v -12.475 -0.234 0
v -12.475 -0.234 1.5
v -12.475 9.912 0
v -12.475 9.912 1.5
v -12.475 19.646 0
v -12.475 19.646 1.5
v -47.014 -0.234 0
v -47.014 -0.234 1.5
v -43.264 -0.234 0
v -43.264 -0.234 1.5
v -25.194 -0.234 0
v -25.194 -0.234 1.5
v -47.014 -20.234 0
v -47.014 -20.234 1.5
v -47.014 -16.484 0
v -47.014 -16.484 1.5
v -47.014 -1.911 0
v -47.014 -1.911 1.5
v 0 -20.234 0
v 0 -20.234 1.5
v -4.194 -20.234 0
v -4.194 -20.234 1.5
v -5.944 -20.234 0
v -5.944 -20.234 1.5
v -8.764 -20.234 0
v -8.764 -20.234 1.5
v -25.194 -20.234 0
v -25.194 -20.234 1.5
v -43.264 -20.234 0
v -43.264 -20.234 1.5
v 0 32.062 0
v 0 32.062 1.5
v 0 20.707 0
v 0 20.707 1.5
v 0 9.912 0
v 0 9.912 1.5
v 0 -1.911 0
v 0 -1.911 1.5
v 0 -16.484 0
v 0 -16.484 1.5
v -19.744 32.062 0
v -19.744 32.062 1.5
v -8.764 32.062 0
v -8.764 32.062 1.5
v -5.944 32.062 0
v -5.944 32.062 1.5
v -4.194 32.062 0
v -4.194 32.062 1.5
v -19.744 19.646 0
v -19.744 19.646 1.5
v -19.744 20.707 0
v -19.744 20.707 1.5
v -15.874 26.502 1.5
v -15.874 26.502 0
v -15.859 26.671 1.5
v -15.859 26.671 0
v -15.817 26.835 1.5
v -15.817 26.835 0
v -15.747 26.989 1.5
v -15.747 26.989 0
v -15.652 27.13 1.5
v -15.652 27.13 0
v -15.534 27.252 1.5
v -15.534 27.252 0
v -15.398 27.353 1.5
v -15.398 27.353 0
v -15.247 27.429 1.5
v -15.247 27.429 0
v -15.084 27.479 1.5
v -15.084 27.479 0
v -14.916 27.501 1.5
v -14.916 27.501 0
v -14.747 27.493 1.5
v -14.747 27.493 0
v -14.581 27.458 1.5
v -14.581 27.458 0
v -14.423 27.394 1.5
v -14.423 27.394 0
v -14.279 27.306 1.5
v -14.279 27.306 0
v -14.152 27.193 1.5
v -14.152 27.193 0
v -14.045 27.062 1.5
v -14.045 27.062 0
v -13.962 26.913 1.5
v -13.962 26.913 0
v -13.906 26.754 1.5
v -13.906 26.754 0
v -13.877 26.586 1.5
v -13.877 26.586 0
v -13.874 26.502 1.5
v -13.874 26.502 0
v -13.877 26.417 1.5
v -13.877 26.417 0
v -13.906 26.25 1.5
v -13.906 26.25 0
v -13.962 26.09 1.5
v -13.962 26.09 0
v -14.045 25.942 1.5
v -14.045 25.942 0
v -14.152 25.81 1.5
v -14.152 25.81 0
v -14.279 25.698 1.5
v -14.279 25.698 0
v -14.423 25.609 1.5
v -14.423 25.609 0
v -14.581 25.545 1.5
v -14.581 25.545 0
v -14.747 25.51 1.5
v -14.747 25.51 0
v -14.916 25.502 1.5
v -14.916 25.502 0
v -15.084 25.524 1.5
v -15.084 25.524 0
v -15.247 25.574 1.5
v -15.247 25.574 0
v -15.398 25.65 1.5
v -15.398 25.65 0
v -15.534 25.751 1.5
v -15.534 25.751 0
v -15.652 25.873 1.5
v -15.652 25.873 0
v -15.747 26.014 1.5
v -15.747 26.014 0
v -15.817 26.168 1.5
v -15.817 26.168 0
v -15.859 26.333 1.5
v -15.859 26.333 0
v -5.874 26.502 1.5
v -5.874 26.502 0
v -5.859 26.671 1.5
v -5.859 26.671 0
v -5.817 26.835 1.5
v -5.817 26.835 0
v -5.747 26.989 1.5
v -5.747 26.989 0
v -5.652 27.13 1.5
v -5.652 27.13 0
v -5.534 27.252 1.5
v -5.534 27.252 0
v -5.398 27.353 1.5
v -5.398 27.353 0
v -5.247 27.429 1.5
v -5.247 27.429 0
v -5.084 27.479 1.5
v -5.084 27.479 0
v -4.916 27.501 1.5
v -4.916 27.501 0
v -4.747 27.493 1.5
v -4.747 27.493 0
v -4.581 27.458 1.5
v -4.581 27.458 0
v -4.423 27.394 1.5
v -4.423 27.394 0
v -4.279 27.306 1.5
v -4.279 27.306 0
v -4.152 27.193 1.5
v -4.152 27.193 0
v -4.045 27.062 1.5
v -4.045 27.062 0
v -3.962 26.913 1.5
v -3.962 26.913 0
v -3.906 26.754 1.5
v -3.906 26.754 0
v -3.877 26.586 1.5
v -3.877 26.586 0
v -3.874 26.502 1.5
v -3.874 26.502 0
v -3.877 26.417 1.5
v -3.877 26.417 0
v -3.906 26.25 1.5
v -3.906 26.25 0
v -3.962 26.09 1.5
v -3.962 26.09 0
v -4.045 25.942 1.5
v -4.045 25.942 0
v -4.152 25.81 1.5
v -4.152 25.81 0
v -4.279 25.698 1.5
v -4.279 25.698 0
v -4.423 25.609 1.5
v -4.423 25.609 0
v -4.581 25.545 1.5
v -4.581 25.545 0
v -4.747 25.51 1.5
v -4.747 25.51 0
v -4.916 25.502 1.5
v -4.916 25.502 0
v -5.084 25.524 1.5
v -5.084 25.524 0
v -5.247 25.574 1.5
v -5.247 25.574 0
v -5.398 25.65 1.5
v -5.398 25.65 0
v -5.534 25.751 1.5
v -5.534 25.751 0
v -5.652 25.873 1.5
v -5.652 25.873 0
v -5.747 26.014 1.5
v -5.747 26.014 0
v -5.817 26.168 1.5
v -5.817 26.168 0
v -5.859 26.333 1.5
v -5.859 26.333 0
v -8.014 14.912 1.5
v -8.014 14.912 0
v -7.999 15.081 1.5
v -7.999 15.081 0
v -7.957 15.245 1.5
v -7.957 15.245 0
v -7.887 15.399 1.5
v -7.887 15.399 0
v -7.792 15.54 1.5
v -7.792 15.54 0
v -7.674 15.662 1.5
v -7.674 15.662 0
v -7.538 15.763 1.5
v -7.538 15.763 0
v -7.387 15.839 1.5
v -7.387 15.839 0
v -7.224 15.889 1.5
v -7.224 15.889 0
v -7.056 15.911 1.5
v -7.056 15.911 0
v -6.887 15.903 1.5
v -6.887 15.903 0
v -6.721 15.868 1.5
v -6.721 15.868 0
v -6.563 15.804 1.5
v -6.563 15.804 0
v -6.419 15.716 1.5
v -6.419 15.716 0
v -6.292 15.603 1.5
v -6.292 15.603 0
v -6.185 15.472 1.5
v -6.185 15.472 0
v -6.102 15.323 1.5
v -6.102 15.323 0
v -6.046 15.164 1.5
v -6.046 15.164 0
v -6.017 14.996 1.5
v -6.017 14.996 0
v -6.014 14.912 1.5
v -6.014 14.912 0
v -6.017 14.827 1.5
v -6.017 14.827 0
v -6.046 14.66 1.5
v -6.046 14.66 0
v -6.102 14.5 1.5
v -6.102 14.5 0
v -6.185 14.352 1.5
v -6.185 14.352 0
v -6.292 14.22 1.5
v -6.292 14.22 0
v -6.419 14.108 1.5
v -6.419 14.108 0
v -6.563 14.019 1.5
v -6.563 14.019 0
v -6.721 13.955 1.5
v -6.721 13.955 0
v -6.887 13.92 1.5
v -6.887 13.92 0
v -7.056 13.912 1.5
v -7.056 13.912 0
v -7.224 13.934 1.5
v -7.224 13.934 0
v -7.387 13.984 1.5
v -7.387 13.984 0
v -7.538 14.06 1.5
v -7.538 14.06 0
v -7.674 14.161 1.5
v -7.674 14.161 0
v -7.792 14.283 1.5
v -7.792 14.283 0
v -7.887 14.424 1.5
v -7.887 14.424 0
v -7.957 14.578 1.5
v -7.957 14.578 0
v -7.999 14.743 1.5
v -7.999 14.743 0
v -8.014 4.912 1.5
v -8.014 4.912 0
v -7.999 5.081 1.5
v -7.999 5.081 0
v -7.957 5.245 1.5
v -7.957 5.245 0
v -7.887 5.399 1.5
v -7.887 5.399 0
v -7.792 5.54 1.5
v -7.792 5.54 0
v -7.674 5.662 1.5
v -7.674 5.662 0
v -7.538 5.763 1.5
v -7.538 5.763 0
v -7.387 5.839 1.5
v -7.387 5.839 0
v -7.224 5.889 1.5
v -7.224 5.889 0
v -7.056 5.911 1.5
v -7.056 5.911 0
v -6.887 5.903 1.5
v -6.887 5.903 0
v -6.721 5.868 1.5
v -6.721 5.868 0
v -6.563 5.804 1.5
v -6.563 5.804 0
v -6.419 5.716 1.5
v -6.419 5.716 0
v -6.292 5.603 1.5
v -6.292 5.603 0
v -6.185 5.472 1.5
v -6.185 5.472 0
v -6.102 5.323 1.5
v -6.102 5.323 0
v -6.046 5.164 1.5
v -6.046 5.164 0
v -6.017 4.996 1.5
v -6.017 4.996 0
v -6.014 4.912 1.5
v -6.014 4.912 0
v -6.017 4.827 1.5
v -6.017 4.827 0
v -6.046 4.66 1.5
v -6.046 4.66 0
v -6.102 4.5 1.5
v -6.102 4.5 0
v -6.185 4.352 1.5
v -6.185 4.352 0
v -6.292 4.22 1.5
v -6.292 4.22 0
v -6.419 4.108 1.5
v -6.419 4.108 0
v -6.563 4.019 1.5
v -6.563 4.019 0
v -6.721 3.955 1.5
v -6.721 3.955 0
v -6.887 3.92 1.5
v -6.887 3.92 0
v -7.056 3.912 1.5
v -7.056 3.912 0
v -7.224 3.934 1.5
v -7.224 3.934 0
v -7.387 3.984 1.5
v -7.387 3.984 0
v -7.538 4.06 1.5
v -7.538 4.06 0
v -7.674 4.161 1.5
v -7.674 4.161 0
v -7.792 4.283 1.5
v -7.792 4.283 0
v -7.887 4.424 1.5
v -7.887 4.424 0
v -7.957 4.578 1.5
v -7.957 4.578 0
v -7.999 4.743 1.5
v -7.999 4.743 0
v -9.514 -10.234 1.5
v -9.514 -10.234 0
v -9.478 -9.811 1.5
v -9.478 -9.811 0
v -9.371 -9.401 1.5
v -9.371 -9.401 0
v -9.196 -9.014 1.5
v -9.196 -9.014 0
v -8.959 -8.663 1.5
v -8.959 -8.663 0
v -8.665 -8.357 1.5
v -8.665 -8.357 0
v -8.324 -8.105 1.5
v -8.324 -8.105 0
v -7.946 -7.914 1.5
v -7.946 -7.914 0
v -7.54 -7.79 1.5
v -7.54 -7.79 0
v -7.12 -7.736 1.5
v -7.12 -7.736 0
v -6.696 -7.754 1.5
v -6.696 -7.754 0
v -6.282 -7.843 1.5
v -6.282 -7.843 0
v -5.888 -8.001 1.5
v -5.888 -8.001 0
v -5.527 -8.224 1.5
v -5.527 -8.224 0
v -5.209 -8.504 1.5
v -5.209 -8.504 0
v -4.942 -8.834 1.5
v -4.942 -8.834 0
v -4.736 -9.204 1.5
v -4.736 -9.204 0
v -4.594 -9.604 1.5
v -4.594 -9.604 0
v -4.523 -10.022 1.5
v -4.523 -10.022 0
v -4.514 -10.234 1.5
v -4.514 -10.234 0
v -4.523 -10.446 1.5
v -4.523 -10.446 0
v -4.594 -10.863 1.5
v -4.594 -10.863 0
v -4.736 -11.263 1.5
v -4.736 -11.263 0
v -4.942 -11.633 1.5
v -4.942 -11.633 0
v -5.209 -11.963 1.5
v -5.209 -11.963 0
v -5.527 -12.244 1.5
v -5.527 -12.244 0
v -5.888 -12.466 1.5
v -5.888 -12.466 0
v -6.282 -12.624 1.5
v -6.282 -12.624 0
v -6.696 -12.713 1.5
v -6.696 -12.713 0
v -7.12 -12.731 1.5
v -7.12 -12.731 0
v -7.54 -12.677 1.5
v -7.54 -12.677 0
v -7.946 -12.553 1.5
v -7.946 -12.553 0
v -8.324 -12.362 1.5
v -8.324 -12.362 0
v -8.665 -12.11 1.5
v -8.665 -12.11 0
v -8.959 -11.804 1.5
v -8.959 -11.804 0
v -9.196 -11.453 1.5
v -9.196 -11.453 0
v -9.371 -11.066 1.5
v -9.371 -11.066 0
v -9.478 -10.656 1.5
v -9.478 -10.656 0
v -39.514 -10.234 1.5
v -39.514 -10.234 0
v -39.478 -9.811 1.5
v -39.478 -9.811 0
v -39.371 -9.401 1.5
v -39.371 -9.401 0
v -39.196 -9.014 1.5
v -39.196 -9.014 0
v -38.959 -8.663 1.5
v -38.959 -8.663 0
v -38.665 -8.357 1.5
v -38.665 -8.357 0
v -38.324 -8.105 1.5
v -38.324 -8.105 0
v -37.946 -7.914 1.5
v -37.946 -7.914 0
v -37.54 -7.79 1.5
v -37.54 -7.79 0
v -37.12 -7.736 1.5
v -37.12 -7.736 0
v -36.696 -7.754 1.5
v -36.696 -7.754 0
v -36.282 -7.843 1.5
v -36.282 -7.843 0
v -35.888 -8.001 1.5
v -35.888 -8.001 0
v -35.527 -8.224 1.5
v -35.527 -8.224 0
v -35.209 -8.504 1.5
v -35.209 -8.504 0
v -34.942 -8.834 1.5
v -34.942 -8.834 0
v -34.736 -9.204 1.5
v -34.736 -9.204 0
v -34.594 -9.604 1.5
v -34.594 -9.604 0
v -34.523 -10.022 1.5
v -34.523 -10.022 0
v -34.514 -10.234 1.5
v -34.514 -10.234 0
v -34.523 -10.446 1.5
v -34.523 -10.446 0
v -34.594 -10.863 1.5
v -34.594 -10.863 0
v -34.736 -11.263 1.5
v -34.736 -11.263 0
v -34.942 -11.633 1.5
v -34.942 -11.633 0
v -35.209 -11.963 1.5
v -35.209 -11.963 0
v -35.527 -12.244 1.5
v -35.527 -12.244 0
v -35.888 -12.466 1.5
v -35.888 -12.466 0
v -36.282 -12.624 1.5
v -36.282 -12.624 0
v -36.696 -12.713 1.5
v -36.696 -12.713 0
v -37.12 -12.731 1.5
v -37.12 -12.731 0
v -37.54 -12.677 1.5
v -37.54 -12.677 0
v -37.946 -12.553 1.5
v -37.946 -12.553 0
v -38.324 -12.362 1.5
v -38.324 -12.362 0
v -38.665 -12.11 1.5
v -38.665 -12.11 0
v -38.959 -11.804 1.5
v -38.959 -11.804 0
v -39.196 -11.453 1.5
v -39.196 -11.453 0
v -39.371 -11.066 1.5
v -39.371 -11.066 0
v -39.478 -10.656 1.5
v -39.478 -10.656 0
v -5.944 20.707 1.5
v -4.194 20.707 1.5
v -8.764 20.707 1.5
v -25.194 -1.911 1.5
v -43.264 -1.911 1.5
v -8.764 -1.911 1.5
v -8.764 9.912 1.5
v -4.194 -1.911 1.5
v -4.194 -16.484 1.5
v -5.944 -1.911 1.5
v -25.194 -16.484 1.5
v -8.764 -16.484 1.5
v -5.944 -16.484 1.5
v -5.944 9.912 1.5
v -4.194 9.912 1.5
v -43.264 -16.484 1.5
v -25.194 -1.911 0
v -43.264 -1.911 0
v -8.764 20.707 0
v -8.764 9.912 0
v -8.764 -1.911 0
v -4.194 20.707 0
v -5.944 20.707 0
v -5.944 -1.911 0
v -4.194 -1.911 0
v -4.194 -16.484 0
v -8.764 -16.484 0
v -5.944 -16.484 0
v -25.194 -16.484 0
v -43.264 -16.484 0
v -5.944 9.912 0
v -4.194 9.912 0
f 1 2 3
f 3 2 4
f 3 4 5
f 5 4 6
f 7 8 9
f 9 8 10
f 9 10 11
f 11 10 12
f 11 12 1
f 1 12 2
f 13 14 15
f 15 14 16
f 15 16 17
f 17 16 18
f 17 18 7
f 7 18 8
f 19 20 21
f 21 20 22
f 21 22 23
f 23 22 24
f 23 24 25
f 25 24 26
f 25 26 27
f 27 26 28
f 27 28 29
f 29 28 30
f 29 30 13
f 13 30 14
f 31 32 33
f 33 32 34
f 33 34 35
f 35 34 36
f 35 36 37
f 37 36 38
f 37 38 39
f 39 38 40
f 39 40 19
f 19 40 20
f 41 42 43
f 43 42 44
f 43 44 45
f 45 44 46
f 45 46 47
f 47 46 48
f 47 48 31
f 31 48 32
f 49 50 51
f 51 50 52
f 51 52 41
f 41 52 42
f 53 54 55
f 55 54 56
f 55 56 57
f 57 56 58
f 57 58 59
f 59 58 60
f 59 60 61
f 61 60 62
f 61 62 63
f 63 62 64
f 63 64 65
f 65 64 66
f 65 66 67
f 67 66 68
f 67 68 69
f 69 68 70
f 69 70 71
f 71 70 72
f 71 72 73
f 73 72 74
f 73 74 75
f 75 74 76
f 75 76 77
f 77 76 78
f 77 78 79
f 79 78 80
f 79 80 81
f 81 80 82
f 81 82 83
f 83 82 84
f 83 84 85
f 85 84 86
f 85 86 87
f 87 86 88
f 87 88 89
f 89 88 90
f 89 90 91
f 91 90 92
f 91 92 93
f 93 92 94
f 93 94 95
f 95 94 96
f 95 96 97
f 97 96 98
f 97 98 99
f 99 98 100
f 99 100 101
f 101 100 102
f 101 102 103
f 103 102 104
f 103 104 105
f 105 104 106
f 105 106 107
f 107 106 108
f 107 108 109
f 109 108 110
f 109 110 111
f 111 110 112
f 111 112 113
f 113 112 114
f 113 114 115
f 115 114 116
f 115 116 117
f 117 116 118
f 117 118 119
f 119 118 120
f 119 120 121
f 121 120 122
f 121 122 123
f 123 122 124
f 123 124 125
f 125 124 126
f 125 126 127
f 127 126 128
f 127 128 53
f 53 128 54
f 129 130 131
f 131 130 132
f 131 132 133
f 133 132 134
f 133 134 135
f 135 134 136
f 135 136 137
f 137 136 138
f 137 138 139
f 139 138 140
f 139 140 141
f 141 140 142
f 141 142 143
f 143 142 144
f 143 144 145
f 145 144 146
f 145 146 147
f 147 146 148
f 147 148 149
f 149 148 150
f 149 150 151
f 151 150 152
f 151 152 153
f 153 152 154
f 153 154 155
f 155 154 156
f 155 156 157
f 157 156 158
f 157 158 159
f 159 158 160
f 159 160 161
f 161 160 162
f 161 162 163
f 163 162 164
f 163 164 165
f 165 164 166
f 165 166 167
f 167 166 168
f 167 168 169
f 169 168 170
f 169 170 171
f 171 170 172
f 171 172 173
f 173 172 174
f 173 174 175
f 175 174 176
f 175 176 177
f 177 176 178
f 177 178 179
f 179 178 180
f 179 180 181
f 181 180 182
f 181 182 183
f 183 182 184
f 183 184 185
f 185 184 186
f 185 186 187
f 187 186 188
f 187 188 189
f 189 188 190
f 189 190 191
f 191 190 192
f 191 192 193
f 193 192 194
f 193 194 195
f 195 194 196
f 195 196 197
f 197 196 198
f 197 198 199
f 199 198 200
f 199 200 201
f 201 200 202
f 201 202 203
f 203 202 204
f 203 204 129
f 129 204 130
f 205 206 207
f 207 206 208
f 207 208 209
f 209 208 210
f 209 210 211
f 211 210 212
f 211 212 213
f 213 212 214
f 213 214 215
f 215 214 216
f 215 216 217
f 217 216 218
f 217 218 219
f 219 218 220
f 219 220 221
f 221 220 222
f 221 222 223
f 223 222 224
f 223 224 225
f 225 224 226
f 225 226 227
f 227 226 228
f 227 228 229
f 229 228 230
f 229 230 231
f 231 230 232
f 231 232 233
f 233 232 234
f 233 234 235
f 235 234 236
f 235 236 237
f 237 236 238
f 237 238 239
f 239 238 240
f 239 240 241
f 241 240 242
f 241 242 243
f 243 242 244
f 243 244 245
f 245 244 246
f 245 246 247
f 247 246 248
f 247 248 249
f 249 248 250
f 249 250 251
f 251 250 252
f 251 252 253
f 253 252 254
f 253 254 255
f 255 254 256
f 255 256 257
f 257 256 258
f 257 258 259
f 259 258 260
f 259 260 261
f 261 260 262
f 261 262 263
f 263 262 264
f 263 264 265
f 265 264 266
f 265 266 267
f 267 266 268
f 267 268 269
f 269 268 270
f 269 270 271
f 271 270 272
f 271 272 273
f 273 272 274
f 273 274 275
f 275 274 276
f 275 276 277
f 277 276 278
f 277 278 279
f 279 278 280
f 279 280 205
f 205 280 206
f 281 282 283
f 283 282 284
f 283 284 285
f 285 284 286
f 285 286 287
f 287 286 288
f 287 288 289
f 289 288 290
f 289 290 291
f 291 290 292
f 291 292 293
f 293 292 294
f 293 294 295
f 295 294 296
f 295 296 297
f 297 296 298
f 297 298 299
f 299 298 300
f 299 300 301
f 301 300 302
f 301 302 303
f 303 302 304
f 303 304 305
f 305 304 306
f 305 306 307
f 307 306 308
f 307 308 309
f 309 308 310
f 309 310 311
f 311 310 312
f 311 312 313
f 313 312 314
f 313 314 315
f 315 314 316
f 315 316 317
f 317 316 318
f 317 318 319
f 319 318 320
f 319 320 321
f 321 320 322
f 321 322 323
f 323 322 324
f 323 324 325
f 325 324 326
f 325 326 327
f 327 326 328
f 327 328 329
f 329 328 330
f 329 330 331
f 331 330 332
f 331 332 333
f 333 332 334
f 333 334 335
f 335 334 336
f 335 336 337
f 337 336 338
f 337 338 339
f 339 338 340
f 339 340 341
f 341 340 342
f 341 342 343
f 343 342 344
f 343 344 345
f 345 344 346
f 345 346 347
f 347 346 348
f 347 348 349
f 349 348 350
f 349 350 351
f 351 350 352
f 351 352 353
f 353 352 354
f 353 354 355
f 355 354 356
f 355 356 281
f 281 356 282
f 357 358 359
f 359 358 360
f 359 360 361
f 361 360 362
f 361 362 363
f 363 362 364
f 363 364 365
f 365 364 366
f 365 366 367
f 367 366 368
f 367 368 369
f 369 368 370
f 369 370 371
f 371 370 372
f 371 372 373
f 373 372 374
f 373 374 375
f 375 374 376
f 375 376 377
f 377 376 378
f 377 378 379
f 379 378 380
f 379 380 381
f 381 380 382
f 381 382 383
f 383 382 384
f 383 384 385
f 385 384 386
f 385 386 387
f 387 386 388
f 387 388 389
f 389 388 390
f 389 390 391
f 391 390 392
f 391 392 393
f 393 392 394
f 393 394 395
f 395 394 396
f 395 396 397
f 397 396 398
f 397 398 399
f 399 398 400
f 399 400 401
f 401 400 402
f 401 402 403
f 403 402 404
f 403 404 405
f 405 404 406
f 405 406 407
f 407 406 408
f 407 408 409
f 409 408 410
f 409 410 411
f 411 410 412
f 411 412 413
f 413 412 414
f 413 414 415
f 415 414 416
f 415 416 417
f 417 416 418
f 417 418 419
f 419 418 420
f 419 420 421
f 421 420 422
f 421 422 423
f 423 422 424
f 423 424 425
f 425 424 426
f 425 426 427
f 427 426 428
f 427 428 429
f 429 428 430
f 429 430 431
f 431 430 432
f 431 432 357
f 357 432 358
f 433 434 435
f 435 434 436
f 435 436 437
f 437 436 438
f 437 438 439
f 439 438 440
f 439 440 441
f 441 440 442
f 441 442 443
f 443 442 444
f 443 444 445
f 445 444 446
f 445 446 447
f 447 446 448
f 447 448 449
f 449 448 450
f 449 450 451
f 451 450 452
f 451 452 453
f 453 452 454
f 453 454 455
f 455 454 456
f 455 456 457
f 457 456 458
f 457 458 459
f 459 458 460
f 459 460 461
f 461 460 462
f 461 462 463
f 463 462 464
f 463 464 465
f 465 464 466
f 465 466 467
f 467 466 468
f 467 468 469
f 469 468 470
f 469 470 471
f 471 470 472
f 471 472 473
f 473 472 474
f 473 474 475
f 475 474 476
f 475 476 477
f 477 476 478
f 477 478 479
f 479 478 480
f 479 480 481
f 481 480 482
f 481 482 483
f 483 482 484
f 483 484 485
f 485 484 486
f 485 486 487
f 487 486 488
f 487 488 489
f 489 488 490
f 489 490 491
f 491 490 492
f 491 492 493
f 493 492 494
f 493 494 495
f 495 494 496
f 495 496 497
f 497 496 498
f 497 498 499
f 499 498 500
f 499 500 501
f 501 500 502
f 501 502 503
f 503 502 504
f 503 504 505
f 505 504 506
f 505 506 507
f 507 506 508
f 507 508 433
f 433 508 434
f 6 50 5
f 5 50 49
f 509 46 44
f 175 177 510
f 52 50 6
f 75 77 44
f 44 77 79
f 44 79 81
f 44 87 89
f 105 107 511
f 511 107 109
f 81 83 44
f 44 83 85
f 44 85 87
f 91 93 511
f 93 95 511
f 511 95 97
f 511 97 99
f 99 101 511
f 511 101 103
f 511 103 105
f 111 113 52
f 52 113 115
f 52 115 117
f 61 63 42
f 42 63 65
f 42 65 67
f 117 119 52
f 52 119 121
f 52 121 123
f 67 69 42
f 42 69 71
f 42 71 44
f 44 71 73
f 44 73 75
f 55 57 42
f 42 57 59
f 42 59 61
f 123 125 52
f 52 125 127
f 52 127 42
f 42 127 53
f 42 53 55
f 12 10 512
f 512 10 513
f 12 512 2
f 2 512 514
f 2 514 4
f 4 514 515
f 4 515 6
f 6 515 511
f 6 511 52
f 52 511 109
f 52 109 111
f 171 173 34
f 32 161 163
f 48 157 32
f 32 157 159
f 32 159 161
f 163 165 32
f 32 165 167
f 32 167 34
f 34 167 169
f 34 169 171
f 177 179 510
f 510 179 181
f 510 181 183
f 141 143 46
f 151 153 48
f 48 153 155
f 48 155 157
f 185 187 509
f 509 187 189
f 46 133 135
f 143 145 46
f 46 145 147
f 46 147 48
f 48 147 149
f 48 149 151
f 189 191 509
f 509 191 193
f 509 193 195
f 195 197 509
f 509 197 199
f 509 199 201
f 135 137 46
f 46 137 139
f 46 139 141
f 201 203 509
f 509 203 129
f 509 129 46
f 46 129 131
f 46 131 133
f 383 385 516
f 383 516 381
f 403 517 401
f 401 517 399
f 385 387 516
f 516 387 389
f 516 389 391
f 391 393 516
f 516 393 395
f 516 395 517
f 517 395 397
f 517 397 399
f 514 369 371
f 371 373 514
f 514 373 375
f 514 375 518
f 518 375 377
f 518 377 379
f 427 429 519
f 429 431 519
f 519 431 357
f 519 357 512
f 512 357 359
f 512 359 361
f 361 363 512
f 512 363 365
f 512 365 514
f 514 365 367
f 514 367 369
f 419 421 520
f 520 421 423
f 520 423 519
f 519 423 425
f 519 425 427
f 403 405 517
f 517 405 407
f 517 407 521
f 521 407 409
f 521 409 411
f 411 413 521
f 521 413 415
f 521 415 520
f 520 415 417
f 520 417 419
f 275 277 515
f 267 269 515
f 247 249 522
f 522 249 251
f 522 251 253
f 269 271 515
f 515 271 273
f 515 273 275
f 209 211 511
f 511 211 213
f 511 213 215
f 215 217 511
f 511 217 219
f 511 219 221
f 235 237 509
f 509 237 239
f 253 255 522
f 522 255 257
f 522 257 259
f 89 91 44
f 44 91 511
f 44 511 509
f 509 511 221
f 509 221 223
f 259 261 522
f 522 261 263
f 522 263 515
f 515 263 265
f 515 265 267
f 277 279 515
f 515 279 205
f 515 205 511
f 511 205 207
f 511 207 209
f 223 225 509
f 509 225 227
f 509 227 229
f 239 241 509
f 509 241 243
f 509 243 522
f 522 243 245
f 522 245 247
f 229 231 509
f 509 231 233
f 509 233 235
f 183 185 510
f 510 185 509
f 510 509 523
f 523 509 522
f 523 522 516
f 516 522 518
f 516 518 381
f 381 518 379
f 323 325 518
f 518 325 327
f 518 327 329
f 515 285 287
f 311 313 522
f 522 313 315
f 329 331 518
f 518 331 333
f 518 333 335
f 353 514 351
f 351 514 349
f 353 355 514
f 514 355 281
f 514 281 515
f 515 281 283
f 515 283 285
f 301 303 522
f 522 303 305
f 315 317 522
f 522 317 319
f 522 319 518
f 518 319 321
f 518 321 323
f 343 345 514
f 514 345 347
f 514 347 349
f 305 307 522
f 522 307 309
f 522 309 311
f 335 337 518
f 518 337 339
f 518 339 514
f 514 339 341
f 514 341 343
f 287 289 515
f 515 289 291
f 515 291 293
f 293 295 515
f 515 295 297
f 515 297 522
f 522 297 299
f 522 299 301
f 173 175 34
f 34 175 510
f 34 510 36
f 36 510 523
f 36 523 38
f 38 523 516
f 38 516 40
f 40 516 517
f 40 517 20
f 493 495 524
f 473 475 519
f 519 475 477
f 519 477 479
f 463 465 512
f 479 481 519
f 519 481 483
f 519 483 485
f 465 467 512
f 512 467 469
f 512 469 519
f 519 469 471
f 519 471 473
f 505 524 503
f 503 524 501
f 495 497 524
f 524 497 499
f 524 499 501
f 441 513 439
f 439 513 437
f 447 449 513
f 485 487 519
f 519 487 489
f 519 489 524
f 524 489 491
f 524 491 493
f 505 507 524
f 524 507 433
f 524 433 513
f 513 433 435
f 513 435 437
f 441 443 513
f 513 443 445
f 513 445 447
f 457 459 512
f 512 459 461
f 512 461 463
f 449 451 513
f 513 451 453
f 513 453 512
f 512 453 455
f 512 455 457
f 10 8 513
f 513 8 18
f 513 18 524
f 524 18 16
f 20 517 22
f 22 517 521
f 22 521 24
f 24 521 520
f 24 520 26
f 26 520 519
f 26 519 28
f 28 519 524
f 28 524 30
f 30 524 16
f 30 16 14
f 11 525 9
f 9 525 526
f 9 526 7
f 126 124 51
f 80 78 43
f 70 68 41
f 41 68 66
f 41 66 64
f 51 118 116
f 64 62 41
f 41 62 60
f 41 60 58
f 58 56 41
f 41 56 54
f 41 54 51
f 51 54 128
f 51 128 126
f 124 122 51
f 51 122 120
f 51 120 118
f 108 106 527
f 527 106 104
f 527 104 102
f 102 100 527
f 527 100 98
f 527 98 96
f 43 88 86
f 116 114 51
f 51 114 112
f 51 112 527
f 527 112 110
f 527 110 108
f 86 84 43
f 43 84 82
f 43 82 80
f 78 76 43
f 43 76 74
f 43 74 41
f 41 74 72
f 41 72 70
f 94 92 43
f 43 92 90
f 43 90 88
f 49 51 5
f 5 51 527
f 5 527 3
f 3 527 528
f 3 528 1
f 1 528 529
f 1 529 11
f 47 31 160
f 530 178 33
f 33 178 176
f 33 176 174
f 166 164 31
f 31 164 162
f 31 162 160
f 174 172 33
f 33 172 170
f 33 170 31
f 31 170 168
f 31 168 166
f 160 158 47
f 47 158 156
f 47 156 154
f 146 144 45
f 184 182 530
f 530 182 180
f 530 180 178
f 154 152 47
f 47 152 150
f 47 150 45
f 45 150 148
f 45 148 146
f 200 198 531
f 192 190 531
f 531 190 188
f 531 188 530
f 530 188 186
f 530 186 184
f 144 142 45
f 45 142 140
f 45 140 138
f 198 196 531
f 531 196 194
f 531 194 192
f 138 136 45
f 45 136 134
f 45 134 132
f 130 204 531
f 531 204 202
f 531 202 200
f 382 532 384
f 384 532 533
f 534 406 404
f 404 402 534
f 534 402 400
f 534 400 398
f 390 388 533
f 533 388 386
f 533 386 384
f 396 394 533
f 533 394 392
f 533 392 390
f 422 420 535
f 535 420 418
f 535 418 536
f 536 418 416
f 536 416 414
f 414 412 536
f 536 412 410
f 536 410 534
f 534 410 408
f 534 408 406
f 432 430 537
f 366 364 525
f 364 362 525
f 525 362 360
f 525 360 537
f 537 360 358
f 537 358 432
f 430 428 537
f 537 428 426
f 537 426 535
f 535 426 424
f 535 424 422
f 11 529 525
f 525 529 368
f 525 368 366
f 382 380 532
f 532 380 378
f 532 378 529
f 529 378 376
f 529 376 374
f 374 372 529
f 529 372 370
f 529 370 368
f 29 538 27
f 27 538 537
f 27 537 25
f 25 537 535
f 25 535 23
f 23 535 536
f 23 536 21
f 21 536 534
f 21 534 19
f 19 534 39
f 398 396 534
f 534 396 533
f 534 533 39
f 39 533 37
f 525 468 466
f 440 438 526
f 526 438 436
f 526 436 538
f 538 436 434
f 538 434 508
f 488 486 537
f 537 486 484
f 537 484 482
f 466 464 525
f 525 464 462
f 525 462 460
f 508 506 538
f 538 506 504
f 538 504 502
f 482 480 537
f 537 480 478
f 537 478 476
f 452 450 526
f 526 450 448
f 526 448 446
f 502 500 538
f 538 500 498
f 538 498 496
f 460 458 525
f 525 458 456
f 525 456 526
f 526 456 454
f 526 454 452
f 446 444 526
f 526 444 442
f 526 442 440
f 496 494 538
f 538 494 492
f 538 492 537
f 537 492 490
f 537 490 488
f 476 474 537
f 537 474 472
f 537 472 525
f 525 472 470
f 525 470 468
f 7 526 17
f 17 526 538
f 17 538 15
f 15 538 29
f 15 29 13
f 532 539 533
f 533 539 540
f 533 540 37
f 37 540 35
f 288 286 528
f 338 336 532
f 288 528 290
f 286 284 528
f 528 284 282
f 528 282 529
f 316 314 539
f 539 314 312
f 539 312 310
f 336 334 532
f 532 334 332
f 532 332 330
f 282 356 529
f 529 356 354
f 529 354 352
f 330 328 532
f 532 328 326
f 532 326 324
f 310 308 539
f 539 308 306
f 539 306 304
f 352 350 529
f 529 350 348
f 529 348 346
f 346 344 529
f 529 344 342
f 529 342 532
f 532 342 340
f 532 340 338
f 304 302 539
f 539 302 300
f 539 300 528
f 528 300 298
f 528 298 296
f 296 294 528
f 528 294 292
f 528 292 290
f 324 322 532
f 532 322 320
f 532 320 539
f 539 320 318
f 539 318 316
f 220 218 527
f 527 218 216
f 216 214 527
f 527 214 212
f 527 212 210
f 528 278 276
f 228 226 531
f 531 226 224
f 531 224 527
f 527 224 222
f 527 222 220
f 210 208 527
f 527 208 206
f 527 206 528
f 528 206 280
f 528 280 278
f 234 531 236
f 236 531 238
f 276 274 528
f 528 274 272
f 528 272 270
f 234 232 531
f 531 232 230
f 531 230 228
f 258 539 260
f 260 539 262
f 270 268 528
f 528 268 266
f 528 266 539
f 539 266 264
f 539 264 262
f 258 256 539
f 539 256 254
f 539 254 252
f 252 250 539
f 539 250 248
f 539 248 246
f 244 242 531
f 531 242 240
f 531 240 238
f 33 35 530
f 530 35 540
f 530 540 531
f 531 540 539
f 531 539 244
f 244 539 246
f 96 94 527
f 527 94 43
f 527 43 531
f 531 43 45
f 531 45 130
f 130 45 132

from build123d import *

# Parameters (mm, degrees)
SKETCH1_R           = 2.5
SKETCH1_R_2         = 1
BOSS_EXTRUDE1_DEPTH = 1.5


with BuildPart() as part:
    # Sketch1 → Boss-Extrude1 (new body)
    with BuildSketch(Plane.XY):
        Polygon((-19.743694785, 19.646203879), (-12.475339463, 19.646203879), (-12.475339463, -0.233517887), (-47.013694785, -0.233517887), (-47.013694785, -20.233517887), (0, -20.233517887), (0, 0), (0, 32.06155097), (-19.743694785, 32.06155097), align=None)
        with Locations((-37.013694785, -10.233517887)):
            Circle(SKETCH1_R, mode=Mode.SUBTRACT)
        with BuildLine():
            ThreePointArc((-4.513694785, -10.233517887), (-7.013694785, -12.733517887), (-9.513694785, -10.233517887))
            ThreePointArc((-9.513694785, -10.233517887), (-7.013694785, -7.733517887), (-4.513694785, -10.233517887))
        make_face(mode=Mode.SUBTRACT)
        with Locations((-7.013694785, 4.91155097)):
            Circle(SKETCH1_R_2, mode=Mode.SUBTRACT)
        with Locations((-7.013694785, 14.91155097)):
            Circle(SKETCH1_R_2, mode=Mode.SUBTRACT)
        with Locations((-14.873694785, 26.50155097)):
            Circle(SKETCH1_R_2, mode=Mode.SUBTRACT)
        with Locations((-4.873694785, 26.50155097)):
            Circle(SKETCH1_R_2, mode=Mode.SUBTRACT)
    extrude(amount=BOSS_EXTRUDE1_DEPTH)


solid = part.part
